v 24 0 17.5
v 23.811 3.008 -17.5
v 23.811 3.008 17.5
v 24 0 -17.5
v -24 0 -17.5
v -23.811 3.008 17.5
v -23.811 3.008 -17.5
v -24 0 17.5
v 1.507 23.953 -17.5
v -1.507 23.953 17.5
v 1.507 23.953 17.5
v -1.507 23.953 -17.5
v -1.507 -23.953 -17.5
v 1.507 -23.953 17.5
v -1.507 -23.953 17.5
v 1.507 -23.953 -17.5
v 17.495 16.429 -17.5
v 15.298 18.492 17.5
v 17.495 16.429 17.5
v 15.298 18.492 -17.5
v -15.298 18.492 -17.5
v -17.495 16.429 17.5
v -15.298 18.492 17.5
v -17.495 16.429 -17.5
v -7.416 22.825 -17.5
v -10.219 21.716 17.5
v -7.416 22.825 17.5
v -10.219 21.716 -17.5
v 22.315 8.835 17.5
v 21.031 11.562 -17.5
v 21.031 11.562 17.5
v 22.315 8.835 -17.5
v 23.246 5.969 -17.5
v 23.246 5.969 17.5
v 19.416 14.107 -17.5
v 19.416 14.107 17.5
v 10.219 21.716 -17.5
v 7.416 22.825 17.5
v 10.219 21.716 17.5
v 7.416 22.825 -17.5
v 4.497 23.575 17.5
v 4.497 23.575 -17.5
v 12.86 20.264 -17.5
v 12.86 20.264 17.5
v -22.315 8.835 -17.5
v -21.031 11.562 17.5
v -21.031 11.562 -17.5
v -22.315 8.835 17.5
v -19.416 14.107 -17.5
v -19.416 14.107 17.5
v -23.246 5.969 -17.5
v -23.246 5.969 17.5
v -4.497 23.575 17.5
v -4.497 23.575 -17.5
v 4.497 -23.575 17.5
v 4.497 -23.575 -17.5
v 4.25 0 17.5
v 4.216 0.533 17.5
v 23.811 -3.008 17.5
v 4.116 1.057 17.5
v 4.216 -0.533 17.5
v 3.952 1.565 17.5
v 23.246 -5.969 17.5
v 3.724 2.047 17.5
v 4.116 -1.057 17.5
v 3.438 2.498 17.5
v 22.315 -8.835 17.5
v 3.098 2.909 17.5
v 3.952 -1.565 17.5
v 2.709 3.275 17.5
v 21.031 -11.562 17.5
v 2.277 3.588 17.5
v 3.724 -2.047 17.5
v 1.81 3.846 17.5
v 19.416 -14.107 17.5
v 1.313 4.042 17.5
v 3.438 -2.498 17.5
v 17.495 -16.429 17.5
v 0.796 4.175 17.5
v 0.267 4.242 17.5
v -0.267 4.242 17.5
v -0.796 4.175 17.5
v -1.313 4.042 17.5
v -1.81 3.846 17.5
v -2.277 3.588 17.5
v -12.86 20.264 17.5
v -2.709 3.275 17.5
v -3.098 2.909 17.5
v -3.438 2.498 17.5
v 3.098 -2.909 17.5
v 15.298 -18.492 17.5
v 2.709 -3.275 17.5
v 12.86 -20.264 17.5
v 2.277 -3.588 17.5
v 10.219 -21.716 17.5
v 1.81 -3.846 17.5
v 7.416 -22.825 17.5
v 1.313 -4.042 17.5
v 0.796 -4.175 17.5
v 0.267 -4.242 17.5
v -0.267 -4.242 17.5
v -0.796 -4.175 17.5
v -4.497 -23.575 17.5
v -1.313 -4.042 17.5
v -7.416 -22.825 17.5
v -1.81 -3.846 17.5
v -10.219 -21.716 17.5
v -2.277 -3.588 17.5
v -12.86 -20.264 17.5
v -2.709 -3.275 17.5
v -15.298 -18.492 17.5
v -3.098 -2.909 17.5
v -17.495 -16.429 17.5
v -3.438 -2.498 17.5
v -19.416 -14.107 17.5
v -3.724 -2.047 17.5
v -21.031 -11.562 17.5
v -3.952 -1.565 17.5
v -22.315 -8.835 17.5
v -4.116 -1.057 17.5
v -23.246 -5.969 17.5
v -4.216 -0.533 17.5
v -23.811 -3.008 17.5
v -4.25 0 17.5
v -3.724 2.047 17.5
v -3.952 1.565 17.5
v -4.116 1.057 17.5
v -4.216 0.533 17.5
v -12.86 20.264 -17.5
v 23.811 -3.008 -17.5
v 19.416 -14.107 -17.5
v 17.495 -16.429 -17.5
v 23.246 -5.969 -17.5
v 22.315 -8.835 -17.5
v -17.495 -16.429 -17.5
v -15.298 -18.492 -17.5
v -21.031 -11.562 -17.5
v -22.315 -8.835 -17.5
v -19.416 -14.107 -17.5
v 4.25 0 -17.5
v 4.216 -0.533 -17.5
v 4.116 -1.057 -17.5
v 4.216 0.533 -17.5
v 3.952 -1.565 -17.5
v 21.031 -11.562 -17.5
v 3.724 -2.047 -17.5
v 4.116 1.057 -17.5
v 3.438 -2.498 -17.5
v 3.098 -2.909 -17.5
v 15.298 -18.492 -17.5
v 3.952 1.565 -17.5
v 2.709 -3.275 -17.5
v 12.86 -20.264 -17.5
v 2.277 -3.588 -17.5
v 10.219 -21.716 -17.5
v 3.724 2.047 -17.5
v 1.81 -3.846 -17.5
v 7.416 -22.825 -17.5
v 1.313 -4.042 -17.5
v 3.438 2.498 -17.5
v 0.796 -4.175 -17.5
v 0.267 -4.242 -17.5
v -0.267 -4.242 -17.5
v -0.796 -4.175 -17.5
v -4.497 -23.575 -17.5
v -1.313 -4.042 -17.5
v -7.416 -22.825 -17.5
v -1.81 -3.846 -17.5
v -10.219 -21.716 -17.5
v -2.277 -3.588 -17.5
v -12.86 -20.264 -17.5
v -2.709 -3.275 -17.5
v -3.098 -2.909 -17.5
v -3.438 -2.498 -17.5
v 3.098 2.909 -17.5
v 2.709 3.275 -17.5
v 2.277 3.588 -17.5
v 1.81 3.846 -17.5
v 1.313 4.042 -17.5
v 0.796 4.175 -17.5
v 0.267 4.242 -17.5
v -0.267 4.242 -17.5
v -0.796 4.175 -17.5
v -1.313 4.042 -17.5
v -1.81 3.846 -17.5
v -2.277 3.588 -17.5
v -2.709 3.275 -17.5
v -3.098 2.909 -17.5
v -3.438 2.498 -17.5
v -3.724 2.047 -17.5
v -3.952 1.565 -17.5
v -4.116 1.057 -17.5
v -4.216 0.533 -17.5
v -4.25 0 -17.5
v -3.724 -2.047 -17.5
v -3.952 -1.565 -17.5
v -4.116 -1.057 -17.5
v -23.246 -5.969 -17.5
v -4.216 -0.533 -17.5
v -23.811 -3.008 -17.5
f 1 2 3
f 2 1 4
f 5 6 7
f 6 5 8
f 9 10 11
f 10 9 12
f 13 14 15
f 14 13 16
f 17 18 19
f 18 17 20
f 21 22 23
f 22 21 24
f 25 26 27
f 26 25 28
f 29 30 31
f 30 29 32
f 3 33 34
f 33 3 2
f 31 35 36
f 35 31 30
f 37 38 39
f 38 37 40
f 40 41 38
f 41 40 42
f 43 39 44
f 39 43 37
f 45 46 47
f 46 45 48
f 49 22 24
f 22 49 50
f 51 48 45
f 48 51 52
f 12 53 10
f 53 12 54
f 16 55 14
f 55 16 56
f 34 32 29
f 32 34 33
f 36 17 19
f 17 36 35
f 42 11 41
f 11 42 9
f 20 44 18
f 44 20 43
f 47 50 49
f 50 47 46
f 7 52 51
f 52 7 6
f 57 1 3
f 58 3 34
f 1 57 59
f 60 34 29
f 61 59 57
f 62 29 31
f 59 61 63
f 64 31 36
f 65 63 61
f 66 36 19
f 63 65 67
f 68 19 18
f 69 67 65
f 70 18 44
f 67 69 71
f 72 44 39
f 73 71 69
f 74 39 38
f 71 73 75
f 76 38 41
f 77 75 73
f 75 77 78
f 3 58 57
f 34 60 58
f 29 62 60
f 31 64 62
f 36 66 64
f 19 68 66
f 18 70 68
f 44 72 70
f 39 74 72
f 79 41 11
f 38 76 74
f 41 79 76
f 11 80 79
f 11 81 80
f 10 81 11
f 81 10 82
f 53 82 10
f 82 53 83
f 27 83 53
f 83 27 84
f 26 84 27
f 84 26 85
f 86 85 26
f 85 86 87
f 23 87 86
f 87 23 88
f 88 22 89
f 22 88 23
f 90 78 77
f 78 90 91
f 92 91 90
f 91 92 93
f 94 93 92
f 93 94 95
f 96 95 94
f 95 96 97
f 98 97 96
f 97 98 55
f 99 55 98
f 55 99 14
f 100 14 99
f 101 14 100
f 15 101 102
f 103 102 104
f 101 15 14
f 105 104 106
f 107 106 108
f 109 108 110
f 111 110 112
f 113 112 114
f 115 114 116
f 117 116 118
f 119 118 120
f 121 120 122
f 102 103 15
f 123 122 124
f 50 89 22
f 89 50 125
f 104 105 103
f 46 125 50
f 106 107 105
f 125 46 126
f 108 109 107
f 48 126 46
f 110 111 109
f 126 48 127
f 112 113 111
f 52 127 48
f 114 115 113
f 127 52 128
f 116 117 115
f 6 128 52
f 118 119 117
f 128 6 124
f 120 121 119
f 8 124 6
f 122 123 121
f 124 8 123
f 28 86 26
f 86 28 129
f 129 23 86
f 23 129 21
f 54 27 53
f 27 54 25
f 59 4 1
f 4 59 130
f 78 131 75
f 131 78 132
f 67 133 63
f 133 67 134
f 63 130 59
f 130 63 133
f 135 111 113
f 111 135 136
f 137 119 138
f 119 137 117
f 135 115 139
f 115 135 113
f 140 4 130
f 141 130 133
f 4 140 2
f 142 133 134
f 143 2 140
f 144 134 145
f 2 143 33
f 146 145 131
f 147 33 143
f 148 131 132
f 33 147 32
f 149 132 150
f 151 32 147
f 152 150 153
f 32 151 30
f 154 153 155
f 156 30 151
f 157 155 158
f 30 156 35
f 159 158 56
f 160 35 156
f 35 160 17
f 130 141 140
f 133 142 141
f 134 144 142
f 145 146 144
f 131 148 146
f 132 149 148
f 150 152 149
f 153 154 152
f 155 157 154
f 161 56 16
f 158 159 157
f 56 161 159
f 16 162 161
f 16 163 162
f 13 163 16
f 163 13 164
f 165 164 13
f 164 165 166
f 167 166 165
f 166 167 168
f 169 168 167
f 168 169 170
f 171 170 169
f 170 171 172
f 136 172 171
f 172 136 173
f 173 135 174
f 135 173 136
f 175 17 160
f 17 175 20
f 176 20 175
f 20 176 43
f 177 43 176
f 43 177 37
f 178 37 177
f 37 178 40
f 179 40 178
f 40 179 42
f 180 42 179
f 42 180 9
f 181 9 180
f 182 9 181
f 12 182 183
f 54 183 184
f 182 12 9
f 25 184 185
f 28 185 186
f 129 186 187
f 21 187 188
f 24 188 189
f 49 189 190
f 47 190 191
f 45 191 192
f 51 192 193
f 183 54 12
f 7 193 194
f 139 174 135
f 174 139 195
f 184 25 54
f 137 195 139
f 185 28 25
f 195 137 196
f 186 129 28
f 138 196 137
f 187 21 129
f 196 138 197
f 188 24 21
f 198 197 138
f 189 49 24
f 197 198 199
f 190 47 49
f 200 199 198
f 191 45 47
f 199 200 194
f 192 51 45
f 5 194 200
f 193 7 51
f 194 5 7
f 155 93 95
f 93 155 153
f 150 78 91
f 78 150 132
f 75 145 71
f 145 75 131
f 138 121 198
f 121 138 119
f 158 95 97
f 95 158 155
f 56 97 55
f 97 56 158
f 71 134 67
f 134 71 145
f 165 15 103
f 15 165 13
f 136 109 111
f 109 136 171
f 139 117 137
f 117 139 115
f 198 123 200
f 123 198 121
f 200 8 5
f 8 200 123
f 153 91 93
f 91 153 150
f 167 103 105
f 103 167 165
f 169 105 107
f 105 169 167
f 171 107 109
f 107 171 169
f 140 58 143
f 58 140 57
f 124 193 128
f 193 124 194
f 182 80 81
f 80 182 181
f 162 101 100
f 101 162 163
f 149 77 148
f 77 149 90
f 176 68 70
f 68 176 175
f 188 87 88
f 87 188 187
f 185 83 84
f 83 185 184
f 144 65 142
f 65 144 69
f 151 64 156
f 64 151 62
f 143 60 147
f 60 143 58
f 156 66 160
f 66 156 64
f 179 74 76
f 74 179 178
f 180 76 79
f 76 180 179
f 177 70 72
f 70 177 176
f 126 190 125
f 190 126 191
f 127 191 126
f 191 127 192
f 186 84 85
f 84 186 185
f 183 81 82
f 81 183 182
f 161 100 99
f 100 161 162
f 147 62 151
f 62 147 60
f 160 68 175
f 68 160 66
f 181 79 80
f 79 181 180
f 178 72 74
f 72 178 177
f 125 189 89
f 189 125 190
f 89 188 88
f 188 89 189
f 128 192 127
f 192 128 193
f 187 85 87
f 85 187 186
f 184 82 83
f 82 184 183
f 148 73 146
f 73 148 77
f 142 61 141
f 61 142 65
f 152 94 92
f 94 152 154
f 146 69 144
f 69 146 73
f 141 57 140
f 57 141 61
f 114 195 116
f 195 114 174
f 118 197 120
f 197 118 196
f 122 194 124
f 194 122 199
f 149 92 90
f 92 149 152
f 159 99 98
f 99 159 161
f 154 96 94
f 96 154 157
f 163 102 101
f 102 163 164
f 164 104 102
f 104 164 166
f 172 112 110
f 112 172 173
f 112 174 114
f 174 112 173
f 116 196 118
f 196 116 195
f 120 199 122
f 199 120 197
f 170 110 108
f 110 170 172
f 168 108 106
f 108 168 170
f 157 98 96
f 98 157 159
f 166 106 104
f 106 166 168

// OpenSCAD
$fn = 50;


difference() {
	union() {
		translate(v = [0, 0, -17.5000000000]) {
			cylinder(h = 35, r = 24.0000000000);
		}
	}
	union() {
		translate(v = [0, 0, -100.0000000000]) {
			cylinder(h = 200, r = 4.2500000000);
		}
	}
}
